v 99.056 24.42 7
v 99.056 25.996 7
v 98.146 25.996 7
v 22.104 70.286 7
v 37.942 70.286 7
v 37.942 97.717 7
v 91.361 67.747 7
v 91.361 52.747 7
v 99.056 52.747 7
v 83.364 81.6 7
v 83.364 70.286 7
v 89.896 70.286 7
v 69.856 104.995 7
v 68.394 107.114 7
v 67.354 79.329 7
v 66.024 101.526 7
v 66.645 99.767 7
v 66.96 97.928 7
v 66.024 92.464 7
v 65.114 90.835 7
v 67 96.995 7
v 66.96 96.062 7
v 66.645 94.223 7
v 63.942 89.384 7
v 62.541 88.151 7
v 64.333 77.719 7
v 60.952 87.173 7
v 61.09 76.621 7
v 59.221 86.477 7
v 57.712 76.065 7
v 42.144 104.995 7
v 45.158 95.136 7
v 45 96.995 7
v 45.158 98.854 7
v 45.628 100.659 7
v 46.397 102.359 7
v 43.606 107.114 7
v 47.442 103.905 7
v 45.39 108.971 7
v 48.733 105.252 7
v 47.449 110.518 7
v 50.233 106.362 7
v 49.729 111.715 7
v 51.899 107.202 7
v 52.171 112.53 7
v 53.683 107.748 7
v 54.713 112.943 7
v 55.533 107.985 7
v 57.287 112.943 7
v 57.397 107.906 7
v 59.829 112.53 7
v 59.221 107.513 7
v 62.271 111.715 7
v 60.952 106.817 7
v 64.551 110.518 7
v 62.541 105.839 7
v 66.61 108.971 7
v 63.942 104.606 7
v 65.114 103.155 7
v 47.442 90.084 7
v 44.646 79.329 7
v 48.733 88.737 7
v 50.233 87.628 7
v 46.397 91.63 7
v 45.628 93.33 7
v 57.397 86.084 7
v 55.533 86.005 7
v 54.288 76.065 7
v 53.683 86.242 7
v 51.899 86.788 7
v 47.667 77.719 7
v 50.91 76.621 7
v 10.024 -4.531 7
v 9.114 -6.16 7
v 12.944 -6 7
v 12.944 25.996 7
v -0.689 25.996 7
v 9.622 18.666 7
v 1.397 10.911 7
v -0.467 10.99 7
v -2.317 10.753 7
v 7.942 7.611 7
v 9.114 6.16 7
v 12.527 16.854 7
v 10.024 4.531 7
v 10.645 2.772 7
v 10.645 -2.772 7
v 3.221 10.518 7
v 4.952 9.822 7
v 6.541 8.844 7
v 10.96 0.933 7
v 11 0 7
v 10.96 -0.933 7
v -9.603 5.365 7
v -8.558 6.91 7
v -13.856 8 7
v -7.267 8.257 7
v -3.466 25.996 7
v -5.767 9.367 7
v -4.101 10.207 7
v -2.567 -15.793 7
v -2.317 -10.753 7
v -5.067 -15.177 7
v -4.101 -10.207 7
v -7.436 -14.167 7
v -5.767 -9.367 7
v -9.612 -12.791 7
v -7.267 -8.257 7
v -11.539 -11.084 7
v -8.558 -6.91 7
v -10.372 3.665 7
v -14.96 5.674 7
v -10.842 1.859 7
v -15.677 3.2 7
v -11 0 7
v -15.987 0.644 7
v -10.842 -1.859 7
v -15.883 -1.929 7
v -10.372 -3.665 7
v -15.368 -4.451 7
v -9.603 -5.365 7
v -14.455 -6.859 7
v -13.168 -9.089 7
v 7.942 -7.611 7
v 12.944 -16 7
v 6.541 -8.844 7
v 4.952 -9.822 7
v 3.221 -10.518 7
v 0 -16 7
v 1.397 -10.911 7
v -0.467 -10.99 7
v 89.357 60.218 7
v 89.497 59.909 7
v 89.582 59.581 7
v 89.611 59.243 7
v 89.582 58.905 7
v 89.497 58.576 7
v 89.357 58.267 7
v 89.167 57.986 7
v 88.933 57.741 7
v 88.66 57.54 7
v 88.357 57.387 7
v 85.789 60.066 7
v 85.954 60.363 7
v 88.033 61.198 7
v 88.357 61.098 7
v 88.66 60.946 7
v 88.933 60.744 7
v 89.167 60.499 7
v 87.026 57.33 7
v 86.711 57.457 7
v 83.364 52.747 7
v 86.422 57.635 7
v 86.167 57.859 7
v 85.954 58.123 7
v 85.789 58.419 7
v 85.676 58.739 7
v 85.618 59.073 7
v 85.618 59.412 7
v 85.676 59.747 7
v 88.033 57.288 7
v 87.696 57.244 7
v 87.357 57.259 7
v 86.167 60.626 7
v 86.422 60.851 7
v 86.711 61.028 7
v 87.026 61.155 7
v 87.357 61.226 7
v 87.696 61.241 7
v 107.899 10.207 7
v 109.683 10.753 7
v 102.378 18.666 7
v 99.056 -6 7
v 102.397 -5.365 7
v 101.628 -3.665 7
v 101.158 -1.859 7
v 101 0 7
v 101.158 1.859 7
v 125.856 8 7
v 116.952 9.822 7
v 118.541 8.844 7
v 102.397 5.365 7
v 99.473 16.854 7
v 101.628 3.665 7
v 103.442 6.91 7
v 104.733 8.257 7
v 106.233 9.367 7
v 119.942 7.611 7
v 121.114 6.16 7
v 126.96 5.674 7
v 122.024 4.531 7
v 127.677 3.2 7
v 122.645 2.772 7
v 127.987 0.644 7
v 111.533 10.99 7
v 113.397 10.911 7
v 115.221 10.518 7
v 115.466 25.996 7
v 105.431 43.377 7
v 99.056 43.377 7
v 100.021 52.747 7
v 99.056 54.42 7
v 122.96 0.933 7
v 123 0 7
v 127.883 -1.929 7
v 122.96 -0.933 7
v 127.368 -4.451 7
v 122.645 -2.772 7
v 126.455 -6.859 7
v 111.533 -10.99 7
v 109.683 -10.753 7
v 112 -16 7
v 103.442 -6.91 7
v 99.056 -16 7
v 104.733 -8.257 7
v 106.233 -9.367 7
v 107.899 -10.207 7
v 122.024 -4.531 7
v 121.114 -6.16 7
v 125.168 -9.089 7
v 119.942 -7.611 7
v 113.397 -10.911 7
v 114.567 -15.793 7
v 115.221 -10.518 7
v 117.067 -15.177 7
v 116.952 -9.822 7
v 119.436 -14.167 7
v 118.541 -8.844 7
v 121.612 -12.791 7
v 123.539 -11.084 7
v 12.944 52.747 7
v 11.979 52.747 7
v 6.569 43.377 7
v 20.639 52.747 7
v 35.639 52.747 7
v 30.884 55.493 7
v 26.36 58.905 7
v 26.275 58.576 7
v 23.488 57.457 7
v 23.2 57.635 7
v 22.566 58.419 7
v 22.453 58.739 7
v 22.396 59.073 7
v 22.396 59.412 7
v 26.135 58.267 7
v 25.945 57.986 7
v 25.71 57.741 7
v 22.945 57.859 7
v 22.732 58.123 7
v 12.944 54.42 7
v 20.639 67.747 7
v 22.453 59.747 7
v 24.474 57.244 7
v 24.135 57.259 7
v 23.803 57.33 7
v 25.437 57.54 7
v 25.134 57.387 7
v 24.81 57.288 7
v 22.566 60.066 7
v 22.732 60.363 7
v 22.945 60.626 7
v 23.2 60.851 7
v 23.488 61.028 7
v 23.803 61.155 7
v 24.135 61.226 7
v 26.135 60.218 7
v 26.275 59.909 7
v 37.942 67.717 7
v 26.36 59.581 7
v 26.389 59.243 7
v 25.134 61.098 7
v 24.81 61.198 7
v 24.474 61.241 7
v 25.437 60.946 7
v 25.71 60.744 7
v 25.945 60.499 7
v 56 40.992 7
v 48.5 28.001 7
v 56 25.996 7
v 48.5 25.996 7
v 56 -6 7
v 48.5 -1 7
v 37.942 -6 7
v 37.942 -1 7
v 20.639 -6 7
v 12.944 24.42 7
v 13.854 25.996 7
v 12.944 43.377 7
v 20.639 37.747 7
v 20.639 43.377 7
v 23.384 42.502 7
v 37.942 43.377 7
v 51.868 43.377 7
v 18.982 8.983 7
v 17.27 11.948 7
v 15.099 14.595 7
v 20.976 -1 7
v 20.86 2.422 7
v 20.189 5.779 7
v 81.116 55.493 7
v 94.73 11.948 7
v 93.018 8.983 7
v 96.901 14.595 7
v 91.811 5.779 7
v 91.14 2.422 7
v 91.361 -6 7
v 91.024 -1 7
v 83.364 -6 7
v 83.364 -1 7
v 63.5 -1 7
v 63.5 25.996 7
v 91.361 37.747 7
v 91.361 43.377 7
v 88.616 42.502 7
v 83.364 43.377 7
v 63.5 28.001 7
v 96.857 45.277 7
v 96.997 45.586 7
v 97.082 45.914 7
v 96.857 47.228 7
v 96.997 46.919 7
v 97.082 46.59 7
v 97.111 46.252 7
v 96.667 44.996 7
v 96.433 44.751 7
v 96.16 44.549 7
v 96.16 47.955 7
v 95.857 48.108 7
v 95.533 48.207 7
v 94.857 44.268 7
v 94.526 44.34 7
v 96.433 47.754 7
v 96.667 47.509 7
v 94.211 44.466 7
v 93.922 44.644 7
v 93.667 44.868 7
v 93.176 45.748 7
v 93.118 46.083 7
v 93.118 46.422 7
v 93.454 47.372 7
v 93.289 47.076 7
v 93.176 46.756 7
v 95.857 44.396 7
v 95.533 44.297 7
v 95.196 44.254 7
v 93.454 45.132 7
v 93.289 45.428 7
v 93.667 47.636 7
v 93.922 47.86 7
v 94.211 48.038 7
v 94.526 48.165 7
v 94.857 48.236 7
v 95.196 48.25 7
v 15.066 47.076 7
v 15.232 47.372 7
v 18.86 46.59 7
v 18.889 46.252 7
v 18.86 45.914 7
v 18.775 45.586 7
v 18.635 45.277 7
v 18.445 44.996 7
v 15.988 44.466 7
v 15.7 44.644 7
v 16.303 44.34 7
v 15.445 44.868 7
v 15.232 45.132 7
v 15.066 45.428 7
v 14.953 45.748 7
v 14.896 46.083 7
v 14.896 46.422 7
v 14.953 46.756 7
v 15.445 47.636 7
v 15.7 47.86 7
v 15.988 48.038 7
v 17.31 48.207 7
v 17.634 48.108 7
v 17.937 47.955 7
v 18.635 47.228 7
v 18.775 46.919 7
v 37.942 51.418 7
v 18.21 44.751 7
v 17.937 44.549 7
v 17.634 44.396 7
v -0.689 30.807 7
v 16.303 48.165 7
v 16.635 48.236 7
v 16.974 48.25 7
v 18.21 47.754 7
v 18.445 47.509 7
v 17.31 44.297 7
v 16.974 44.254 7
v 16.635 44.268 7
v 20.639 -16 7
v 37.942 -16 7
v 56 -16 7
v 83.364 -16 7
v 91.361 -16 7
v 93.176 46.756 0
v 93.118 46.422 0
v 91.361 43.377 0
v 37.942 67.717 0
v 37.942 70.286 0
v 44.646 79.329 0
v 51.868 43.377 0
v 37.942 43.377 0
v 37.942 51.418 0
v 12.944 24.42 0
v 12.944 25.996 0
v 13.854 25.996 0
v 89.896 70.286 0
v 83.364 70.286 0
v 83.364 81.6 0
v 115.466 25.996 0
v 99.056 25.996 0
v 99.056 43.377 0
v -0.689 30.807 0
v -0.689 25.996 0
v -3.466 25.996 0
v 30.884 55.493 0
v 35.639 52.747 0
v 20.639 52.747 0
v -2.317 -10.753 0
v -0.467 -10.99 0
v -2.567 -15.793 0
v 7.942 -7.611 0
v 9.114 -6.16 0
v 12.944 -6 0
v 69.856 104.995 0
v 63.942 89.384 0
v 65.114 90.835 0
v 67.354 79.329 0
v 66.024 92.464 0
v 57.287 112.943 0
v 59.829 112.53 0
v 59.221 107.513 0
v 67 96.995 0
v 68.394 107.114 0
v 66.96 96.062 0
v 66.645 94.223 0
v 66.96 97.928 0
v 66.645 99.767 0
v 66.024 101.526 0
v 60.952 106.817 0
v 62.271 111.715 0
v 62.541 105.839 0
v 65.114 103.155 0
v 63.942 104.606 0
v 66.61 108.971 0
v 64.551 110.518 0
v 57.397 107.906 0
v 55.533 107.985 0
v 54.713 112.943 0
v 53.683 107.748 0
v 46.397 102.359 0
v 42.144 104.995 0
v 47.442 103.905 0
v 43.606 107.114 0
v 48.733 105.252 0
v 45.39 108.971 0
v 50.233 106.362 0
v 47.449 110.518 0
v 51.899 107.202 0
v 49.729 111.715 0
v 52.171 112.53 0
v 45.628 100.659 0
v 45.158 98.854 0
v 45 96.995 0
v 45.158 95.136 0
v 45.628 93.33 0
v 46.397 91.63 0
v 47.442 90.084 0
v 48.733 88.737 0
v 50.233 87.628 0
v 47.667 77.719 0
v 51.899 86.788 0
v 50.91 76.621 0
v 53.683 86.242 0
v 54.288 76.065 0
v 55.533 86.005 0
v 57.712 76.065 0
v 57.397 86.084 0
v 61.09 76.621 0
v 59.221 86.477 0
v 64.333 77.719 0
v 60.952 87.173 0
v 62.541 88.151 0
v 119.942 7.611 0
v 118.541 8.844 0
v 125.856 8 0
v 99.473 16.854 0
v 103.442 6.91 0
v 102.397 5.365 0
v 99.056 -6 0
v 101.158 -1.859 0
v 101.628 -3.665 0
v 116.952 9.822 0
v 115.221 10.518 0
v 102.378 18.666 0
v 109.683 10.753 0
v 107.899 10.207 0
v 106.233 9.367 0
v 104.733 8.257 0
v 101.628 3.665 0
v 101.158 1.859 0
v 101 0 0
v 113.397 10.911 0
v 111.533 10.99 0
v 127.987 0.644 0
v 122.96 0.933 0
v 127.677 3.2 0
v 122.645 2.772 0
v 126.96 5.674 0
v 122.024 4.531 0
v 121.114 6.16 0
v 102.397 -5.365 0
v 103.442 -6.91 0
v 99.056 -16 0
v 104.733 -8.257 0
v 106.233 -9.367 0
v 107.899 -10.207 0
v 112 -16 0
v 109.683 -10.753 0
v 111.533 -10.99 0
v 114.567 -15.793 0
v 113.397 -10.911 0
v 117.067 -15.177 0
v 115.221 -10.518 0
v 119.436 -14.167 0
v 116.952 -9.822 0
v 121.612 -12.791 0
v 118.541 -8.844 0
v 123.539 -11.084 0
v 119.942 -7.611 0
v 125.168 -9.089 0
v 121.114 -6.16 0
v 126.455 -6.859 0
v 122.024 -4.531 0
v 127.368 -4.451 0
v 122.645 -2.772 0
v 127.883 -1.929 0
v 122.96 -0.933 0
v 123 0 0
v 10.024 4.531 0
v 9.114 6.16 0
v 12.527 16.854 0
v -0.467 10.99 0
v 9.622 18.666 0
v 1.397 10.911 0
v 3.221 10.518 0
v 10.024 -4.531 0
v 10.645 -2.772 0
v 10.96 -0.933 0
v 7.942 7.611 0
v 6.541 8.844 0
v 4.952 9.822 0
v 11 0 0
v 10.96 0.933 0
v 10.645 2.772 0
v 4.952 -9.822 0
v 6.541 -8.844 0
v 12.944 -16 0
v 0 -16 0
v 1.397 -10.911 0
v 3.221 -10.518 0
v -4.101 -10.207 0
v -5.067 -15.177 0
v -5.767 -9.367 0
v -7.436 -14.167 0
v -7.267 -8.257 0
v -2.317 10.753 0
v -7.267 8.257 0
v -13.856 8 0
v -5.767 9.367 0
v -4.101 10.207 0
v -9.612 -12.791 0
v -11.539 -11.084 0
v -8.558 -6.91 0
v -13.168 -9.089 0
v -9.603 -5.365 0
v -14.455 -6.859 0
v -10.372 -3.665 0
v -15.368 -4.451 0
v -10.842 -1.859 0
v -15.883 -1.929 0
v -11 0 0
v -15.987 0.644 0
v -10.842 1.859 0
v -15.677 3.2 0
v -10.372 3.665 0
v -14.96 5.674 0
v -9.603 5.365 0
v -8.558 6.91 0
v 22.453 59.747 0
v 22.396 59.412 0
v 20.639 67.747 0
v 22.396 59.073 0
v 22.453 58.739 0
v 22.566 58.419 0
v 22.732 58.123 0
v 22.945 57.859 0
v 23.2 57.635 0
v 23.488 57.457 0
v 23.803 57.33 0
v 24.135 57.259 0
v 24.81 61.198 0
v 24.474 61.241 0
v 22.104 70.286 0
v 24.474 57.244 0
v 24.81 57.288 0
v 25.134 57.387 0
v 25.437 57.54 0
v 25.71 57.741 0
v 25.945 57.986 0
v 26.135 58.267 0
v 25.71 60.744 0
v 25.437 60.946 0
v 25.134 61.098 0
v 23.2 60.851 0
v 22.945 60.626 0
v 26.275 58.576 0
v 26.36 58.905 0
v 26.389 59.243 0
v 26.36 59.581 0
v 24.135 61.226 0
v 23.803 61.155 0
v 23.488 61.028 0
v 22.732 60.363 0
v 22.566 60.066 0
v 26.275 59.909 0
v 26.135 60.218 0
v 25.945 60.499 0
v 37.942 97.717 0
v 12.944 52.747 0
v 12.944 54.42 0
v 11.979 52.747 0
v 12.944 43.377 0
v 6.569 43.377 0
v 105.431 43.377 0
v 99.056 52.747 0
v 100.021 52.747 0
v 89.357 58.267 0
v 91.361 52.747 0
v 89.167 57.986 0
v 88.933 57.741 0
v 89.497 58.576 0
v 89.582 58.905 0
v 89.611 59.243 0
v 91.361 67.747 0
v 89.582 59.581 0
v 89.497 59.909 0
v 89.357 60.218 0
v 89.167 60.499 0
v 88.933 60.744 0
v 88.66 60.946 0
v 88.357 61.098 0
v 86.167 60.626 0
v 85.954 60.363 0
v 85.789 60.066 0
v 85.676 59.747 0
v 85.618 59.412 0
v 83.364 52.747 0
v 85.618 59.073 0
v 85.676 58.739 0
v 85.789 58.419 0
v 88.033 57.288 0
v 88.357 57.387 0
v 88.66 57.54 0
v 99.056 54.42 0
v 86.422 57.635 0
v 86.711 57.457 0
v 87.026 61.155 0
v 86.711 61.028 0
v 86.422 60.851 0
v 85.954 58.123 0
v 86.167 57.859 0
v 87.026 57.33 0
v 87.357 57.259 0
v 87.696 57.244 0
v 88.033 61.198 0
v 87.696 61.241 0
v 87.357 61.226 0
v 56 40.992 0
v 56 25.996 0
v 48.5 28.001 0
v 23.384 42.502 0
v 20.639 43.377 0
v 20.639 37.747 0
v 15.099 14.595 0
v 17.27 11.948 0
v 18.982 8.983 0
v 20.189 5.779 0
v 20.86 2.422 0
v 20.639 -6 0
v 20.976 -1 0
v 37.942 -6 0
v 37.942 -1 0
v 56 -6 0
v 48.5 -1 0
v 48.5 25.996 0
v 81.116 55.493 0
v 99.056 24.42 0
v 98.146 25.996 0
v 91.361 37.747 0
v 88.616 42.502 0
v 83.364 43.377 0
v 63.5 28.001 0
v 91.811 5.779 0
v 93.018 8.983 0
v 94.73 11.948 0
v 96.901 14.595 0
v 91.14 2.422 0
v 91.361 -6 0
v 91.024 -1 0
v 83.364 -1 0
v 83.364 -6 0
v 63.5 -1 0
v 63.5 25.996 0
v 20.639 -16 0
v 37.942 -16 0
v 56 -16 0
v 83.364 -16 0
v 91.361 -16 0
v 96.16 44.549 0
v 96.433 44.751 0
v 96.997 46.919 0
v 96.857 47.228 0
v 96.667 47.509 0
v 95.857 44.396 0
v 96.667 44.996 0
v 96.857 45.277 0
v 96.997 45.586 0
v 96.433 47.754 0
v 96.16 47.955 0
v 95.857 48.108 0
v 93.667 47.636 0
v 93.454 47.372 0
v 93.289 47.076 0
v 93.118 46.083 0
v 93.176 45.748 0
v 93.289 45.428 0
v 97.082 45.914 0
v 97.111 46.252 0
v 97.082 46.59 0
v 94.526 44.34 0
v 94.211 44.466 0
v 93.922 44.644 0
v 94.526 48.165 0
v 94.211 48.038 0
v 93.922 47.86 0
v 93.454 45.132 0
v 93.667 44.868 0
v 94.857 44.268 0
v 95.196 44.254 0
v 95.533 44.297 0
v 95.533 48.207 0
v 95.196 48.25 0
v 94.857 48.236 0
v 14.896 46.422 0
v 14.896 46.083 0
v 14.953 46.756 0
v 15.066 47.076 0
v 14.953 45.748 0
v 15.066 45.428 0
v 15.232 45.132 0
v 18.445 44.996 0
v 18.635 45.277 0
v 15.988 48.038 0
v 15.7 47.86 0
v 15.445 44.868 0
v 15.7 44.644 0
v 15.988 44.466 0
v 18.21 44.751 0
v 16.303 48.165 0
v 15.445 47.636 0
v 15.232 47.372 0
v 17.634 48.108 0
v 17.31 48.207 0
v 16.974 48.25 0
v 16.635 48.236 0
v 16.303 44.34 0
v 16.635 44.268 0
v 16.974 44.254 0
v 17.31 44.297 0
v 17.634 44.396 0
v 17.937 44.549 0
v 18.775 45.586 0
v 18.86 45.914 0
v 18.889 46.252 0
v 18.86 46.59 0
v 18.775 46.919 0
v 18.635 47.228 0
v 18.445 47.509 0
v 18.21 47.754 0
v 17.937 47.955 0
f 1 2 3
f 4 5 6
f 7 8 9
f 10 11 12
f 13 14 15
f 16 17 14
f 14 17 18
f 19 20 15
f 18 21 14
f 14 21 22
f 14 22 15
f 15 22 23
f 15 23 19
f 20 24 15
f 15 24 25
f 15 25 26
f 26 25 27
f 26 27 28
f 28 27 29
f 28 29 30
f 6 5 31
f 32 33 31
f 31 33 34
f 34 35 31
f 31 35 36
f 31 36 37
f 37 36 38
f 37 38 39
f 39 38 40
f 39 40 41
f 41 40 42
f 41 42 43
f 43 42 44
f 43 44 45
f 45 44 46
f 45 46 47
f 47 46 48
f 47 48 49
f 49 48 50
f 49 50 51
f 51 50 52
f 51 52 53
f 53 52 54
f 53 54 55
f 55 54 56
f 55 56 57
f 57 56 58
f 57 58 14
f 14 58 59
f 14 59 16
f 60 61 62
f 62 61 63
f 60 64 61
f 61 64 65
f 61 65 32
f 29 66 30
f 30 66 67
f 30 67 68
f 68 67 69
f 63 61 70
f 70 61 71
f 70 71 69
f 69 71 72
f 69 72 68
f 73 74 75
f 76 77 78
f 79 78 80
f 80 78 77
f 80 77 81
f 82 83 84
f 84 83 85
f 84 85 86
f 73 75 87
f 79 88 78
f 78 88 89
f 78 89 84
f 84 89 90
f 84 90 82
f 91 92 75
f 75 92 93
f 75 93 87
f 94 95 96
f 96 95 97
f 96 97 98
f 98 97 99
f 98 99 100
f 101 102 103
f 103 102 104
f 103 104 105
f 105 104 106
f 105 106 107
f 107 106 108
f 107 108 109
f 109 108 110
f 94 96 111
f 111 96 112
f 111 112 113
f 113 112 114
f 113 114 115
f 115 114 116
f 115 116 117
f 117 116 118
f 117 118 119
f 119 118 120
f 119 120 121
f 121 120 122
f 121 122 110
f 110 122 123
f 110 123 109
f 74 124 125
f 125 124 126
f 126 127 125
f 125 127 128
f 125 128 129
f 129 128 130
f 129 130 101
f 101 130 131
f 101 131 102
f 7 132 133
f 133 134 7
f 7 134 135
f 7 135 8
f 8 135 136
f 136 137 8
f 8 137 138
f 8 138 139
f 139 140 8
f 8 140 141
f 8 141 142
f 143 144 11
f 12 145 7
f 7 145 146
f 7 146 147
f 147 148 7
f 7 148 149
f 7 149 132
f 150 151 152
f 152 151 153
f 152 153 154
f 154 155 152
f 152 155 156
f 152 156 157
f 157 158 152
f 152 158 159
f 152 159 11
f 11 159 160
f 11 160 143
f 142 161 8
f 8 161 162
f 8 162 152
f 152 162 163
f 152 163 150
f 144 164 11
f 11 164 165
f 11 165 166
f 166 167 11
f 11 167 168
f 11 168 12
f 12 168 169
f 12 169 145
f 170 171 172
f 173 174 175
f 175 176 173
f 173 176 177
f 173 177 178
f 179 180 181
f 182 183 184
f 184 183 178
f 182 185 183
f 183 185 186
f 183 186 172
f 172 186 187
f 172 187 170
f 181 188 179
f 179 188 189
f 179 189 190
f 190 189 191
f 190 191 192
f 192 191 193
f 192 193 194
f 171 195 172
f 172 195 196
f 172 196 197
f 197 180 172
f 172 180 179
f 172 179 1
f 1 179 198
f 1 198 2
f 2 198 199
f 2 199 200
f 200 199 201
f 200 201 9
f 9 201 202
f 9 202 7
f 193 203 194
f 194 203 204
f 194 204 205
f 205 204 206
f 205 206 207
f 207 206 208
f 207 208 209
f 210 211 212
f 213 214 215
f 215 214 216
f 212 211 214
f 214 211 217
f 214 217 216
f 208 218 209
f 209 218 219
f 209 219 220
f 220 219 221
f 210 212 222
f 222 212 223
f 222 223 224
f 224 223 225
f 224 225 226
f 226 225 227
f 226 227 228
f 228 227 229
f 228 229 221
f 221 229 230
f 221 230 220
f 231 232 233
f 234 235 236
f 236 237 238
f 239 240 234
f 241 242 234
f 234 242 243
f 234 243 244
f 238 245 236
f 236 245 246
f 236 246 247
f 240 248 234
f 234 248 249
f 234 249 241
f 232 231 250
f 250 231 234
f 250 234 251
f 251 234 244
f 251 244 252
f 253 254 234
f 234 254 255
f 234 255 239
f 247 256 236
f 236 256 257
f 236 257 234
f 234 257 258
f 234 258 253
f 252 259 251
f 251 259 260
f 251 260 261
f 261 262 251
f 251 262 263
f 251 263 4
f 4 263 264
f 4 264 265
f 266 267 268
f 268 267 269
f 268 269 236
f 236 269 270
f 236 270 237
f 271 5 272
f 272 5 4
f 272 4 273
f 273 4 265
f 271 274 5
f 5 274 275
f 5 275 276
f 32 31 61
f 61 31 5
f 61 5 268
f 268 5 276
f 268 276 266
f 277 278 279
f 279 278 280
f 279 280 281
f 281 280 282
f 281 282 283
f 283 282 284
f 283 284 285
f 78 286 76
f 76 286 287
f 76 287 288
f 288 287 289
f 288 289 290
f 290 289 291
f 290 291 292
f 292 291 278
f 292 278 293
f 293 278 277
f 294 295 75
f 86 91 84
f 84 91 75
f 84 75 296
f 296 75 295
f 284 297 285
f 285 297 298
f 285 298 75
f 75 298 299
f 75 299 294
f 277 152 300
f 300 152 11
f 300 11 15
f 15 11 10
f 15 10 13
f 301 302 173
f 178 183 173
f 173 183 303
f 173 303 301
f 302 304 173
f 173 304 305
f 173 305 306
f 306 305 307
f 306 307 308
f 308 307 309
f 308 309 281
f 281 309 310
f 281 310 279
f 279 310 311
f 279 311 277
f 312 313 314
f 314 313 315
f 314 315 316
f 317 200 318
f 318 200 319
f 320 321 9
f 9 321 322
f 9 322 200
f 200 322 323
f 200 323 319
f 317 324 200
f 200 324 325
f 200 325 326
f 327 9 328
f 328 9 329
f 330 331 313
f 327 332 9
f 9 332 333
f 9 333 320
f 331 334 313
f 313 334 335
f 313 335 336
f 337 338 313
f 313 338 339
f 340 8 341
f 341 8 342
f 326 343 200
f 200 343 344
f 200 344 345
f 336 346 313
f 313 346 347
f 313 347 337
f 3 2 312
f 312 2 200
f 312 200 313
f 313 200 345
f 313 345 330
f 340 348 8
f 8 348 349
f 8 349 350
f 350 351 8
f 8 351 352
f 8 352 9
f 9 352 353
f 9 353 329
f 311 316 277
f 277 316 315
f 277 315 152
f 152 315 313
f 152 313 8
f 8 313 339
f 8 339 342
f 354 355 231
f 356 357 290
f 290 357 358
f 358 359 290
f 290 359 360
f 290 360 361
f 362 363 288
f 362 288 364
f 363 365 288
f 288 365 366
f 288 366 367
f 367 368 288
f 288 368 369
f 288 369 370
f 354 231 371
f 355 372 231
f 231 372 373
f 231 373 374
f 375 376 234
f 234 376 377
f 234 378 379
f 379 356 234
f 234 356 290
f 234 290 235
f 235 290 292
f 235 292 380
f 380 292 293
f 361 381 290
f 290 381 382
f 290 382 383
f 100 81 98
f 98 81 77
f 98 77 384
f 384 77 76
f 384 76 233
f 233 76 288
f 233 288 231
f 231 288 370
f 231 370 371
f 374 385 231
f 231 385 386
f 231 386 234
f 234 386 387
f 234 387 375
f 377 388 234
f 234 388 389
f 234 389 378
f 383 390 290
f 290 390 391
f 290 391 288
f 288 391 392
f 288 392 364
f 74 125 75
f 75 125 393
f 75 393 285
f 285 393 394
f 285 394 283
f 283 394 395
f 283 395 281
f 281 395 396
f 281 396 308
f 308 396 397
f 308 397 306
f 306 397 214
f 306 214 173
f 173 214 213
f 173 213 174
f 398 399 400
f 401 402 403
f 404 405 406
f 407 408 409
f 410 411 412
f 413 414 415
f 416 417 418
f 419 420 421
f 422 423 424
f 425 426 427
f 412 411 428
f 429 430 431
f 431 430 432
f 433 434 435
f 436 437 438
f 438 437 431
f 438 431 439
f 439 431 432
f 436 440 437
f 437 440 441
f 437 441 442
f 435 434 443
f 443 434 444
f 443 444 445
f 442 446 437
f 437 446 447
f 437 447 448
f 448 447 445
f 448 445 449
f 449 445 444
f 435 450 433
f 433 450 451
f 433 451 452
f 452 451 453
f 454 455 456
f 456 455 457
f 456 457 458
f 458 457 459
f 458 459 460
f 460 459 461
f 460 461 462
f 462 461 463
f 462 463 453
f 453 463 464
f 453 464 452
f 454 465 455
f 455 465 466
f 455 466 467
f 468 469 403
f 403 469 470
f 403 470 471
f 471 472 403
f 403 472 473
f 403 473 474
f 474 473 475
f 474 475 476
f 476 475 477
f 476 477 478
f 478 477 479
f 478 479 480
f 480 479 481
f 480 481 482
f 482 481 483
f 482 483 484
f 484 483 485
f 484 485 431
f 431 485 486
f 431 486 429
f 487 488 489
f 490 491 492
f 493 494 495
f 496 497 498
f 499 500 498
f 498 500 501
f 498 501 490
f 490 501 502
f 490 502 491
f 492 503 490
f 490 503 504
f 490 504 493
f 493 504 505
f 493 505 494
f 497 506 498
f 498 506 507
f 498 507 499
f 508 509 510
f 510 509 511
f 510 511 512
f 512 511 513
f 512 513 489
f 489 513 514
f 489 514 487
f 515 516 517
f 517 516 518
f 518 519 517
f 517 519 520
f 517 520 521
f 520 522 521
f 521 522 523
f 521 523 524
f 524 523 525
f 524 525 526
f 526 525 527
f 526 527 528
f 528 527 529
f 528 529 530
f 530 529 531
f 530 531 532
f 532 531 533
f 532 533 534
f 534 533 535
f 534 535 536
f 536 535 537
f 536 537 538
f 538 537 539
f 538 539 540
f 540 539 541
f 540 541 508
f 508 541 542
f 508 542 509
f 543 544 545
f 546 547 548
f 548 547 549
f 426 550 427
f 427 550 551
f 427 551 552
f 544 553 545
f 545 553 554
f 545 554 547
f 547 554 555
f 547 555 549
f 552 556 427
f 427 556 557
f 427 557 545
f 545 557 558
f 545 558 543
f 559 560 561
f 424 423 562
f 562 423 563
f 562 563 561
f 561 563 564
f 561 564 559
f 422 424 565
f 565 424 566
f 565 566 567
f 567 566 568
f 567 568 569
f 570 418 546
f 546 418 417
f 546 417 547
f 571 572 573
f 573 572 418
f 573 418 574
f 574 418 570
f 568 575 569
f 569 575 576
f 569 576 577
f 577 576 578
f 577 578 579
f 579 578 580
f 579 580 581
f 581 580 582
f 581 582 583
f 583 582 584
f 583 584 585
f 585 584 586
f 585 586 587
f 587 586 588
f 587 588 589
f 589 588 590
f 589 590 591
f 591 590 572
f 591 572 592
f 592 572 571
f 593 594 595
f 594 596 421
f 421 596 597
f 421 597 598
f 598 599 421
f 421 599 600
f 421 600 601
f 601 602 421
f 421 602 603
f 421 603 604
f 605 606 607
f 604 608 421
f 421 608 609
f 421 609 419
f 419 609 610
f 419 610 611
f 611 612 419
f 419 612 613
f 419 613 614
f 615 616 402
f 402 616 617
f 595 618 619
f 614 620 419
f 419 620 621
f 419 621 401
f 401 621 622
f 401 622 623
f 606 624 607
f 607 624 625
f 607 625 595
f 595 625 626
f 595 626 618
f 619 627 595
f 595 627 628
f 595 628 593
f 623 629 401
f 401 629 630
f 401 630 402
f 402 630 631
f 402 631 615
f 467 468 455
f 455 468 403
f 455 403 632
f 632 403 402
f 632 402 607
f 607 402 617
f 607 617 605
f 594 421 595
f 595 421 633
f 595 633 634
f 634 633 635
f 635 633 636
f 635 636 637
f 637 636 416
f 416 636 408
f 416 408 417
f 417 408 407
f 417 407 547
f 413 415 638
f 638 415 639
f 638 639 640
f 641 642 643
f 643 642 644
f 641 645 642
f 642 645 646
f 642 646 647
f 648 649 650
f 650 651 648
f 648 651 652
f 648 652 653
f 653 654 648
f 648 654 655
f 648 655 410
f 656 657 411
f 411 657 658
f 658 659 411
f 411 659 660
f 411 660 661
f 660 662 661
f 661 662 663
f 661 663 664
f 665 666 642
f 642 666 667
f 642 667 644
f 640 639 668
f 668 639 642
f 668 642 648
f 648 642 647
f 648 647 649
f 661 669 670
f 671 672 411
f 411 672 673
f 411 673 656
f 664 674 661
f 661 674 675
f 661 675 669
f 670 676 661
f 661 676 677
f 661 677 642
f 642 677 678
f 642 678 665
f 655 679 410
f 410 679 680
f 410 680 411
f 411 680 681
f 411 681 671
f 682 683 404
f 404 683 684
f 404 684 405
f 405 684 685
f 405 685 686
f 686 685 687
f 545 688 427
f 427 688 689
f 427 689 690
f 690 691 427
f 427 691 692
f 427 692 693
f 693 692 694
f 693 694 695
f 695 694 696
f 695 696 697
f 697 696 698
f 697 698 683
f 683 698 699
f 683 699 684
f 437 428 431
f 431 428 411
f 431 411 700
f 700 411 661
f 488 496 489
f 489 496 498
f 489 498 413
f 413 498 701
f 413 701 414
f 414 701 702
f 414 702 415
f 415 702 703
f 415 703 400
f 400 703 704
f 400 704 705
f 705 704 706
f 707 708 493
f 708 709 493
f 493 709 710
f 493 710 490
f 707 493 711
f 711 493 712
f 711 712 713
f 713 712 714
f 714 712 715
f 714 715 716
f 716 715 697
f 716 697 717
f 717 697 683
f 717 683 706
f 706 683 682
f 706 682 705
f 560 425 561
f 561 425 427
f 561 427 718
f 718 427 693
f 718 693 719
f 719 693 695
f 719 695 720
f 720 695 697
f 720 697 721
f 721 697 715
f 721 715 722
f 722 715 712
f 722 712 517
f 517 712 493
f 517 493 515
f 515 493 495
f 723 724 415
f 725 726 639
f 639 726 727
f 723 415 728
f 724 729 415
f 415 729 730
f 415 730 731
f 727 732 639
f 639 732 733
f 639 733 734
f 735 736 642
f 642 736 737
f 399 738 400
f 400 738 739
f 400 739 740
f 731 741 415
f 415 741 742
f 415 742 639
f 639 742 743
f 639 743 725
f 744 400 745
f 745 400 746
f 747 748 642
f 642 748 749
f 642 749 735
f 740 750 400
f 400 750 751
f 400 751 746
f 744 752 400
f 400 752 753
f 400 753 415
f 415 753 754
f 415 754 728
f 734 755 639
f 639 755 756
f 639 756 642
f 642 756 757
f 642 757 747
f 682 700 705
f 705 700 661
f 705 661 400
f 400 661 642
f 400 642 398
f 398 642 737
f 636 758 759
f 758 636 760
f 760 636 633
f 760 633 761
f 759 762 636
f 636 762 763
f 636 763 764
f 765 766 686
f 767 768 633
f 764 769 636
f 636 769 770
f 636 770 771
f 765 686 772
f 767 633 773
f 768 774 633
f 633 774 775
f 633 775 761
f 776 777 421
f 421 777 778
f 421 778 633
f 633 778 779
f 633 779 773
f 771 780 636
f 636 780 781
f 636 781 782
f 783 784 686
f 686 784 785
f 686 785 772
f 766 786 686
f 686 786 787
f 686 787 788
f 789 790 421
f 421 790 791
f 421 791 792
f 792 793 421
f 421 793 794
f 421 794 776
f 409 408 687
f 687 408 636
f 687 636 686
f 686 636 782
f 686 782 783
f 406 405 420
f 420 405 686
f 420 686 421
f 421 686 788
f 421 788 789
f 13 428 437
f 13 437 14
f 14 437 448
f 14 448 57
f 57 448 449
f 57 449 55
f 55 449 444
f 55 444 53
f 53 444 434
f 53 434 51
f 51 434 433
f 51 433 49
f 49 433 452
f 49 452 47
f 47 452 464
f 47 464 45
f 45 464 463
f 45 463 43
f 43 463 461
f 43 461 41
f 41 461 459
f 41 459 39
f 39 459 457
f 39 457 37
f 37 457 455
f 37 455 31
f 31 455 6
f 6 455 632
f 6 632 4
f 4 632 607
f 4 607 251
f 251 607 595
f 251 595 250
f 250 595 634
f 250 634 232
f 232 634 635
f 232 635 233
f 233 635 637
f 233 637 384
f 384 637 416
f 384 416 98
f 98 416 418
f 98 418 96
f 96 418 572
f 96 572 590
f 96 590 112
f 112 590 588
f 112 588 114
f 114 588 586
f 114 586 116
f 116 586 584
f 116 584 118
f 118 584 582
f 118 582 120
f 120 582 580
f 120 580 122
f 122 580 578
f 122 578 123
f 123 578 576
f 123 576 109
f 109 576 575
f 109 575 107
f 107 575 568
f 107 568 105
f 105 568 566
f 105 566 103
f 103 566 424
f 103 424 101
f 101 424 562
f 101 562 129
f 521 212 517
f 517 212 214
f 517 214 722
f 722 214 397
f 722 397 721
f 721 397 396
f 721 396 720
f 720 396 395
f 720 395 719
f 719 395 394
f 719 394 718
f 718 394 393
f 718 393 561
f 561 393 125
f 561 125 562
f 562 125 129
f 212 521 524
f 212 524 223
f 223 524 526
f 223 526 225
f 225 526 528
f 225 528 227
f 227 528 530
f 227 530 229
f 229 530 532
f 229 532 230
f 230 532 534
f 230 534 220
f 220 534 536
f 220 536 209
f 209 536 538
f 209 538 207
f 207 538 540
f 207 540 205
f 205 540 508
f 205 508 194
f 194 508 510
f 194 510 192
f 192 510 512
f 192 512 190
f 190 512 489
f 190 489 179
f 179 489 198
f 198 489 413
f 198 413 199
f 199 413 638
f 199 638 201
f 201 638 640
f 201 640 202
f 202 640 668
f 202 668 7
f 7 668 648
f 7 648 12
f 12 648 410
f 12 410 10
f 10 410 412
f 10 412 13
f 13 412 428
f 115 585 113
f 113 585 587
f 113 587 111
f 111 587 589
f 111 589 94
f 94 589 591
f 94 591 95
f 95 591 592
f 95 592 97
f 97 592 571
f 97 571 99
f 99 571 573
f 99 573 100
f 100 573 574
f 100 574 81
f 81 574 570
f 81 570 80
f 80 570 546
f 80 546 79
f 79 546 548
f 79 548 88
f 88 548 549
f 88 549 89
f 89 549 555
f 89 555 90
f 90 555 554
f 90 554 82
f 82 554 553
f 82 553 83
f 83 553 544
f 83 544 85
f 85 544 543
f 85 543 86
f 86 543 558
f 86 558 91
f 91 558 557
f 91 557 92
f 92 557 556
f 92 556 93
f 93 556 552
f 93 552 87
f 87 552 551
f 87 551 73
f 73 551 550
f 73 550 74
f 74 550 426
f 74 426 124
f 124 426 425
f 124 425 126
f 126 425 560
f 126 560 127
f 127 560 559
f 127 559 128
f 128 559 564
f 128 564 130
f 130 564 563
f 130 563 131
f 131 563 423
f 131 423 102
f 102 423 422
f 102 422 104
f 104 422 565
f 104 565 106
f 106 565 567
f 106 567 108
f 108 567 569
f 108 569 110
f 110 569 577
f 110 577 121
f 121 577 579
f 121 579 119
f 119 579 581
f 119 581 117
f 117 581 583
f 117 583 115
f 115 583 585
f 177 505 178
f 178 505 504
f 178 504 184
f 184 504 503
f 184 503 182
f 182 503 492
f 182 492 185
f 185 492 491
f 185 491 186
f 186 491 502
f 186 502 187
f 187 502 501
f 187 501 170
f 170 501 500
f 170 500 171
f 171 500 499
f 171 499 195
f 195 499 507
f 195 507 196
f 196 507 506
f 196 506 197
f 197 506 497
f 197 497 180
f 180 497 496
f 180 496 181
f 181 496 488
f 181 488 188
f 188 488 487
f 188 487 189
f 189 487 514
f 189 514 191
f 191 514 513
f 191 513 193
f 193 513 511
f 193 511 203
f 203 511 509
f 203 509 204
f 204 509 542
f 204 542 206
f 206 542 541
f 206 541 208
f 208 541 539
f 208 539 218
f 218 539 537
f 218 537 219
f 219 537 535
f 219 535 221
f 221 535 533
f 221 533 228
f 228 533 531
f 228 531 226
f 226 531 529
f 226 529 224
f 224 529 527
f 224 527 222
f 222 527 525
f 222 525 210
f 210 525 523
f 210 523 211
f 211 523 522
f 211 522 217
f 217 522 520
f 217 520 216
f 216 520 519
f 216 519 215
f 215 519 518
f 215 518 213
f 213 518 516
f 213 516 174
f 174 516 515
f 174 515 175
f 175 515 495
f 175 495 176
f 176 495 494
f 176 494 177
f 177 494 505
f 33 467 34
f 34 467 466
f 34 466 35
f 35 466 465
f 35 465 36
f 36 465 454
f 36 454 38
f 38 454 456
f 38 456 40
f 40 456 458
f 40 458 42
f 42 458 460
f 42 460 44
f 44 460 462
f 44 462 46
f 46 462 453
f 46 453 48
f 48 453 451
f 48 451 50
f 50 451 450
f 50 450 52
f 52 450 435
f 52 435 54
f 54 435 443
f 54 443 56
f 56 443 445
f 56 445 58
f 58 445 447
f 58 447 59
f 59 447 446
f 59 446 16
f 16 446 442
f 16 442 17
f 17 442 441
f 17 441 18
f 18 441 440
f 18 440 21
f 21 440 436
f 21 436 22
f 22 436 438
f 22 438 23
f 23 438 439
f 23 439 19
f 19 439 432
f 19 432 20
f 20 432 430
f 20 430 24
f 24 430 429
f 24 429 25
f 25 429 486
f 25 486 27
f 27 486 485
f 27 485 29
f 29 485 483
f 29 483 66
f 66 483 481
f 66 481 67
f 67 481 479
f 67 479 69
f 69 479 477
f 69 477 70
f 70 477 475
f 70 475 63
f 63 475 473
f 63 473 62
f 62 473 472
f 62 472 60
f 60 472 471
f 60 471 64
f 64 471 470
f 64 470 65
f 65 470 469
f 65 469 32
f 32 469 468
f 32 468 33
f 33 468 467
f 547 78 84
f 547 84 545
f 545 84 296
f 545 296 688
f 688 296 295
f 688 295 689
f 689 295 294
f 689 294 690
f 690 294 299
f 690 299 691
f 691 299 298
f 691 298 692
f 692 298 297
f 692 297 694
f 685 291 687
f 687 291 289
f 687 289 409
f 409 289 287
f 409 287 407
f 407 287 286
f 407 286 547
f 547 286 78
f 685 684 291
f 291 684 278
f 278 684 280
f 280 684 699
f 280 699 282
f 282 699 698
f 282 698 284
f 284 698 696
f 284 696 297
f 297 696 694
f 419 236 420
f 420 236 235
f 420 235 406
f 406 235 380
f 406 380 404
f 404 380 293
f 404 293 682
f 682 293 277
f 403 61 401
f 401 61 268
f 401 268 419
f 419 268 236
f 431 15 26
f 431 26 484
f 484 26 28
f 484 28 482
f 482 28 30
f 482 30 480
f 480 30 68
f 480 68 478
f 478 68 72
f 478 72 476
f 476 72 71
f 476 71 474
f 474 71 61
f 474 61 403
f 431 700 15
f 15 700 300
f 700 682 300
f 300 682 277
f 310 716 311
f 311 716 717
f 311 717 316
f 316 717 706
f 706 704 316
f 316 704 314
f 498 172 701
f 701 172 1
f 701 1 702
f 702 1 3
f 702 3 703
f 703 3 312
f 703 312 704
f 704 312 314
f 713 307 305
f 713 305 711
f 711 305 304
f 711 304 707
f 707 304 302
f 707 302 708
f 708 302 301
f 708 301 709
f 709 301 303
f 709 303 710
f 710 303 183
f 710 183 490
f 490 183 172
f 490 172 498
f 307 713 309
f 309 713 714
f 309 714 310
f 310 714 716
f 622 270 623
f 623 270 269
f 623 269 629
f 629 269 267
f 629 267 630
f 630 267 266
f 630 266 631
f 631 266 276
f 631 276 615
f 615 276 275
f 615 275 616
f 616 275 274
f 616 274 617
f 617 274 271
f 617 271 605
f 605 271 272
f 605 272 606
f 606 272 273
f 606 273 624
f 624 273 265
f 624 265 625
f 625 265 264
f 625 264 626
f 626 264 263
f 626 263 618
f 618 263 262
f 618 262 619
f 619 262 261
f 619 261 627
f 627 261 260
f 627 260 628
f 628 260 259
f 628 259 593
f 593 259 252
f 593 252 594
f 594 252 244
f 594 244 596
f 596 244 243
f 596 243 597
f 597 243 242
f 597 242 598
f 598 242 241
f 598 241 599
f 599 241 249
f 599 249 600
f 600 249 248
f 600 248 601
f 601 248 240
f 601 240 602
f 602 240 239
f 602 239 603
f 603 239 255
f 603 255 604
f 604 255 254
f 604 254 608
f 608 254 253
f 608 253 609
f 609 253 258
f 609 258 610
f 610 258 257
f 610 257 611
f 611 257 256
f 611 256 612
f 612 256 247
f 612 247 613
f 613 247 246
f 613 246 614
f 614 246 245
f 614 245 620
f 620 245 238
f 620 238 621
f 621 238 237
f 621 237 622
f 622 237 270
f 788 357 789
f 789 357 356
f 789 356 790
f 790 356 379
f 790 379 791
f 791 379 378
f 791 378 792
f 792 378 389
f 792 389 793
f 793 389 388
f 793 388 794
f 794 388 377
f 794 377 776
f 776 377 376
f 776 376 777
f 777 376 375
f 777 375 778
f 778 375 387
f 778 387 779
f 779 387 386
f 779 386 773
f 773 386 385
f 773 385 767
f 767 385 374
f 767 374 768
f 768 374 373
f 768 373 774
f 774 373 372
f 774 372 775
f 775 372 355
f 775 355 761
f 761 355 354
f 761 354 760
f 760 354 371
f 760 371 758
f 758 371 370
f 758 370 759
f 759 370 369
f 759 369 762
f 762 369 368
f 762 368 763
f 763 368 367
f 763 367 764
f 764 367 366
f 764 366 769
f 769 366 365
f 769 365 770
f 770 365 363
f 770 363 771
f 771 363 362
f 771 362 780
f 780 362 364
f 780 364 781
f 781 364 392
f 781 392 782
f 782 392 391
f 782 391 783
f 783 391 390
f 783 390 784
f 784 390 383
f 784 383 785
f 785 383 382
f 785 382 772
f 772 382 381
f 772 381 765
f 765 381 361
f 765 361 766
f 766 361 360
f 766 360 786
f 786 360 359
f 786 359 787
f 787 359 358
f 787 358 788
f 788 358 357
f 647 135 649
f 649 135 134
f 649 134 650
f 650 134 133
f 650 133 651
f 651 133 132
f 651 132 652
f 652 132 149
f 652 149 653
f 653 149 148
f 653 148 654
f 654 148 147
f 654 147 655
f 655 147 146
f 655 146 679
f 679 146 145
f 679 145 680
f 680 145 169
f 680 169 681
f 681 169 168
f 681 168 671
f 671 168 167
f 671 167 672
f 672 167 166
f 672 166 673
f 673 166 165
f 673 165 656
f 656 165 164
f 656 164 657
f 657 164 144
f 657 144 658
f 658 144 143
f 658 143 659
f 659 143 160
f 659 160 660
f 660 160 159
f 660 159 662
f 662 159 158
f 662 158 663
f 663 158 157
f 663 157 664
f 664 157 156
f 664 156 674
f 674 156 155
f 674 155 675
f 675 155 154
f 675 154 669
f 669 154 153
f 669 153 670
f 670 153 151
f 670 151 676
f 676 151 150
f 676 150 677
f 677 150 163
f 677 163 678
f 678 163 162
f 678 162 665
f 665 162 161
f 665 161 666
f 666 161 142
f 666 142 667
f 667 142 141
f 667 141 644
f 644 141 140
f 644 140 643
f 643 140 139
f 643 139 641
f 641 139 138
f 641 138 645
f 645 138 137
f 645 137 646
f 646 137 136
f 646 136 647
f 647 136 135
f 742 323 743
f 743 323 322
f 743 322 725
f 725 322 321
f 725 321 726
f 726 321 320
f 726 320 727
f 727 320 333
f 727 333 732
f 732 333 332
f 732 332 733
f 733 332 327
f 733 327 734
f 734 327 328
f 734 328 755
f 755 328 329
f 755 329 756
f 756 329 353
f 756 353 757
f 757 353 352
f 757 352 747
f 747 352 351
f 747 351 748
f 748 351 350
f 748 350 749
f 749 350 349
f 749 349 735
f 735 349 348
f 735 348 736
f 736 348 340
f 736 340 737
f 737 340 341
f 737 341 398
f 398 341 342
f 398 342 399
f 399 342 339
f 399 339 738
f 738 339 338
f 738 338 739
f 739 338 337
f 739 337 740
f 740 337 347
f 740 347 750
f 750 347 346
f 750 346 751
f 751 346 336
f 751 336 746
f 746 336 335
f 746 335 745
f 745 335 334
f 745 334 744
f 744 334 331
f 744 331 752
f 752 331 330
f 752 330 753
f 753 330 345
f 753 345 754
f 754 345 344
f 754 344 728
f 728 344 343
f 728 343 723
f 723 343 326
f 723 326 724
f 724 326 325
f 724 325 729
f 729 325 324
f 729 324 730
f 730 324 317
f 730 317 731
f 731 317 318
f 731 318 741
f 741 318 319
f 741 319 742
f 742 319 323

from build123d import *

# Parameters (mm, degrees)
SKETCH1_R           = 11
BOSS_EXTRUDE1_DEPTH = 7
CUT_EXTRUDE1_DEPTH  = 8
SKETCH5_R           = 2
CUT_EXTRUDE2_DEPTH  = 8


with BuildPart() as part:
    # Sketch1 → Boss-Extrude1 (new body)
    with BuildSketch(Plane.XY):
        with BuildLine():
            Line((42.143593539, 104.994845224), (-13.856406461, 8))
            ThreePointArc((-13.856406461, 8), (-13.856406461, -8), (0, -16))
            Line((0, -16), (112, -16))
            ThreePointArc((112, -16), (125.856406461, -8), (125.856406461, 8))
            Line((125.856406461, 8), (69.856406461, 104.994845224))
            ThreePointArc((69.856406461, 104.994845224), (56, 112.994845224), (42.143593539, 104.994845224))
        make_face()
        Circle(SKETCH1_R, mode=Mode.SUBTRACT)
        with Locations((112, 0)):
            Circle(SKETCH1_R, mode=Mode.SUBTRACT)
        with Locations((56, 96.994845224)):
            Circle(SKETCH1_R, mode=Mode.SUBTRACT)
    extrude(amount=BOSS_EXTRUDE1_DEPTH)

    # Sketch2 → Cut-Extrude1 (cut, through all)
    with BuildSketch(Plane.XY.offset(7)):
        with BuildLine():
            Line((9.622063078, 18.665902125), (23.383974596, 42.502232084))
            Line((23.383974596, 42.502232084), (48.5, 28.001488056))
            Line((48.5, 28.001488056), (48.5, -1))
            Line((48.5, -1), (20.976176963, -1))
            ThreePointArc((20.976176963, -1), (18.186533479, 10.5), (9.622063078, 18.665902125))
        make_face()
        with BuildLine():
            Line((63.5, -1), (91.023823037, -1))
            ThreePointArc((91.023823037, -1), (93.813466521, 10.5), (102.377936922, 18.665902125))
            Line((102.377936922, 18.665902125), (88.616025404, 42.502232084))
            Line((88.616025404, 42.502232084), (63.5, 28.001488056))
            Line((63.5, 28.001488056), (63.5, -1))
        make_face()
        with BuildLine():
            Line((30.883974596, 55.49261314), (44.645886115, 79.328943099))
            ThreePointArc((44.645886115, 79.328943099), (56, 75.994845224), (67.354113885, 79.328943099))
            Line((67.354113885, 79.328943099), (81.116025404, 55.49261314))
            Line((81.116025404, 55.49261314), (56, 40.991869112))
            Line((56, 40.991869112), (30.883974596, 55.49261314))
        make_face()
    extrude(amount=-CUT_EXTRUDE1_DEPTH, mode=Mode.SUBTRACT)

    # Sketch5 → Cut-Extrude2 (cut, through all)
    with BuildSketch(Plane.XY.offset(7)):
        with Locations((24.388784068, 59.24261314)):
            Circle(SKETCH5_R)
        with Locations((16.888784068, 46.252232084)):
            Circle(SKETCH5_R)
        with Locations((87.611215932, 59.24261314)):
            Circle(SKETCH5_R)
        with Locations((95.111215932, 46.252232084)):
            Circle(SKETCH5_R)
    extrude(amount=-CUT_EXTRUDE2_DEPTH, mode=Mode.SUBTRACT)


solid = part.part
